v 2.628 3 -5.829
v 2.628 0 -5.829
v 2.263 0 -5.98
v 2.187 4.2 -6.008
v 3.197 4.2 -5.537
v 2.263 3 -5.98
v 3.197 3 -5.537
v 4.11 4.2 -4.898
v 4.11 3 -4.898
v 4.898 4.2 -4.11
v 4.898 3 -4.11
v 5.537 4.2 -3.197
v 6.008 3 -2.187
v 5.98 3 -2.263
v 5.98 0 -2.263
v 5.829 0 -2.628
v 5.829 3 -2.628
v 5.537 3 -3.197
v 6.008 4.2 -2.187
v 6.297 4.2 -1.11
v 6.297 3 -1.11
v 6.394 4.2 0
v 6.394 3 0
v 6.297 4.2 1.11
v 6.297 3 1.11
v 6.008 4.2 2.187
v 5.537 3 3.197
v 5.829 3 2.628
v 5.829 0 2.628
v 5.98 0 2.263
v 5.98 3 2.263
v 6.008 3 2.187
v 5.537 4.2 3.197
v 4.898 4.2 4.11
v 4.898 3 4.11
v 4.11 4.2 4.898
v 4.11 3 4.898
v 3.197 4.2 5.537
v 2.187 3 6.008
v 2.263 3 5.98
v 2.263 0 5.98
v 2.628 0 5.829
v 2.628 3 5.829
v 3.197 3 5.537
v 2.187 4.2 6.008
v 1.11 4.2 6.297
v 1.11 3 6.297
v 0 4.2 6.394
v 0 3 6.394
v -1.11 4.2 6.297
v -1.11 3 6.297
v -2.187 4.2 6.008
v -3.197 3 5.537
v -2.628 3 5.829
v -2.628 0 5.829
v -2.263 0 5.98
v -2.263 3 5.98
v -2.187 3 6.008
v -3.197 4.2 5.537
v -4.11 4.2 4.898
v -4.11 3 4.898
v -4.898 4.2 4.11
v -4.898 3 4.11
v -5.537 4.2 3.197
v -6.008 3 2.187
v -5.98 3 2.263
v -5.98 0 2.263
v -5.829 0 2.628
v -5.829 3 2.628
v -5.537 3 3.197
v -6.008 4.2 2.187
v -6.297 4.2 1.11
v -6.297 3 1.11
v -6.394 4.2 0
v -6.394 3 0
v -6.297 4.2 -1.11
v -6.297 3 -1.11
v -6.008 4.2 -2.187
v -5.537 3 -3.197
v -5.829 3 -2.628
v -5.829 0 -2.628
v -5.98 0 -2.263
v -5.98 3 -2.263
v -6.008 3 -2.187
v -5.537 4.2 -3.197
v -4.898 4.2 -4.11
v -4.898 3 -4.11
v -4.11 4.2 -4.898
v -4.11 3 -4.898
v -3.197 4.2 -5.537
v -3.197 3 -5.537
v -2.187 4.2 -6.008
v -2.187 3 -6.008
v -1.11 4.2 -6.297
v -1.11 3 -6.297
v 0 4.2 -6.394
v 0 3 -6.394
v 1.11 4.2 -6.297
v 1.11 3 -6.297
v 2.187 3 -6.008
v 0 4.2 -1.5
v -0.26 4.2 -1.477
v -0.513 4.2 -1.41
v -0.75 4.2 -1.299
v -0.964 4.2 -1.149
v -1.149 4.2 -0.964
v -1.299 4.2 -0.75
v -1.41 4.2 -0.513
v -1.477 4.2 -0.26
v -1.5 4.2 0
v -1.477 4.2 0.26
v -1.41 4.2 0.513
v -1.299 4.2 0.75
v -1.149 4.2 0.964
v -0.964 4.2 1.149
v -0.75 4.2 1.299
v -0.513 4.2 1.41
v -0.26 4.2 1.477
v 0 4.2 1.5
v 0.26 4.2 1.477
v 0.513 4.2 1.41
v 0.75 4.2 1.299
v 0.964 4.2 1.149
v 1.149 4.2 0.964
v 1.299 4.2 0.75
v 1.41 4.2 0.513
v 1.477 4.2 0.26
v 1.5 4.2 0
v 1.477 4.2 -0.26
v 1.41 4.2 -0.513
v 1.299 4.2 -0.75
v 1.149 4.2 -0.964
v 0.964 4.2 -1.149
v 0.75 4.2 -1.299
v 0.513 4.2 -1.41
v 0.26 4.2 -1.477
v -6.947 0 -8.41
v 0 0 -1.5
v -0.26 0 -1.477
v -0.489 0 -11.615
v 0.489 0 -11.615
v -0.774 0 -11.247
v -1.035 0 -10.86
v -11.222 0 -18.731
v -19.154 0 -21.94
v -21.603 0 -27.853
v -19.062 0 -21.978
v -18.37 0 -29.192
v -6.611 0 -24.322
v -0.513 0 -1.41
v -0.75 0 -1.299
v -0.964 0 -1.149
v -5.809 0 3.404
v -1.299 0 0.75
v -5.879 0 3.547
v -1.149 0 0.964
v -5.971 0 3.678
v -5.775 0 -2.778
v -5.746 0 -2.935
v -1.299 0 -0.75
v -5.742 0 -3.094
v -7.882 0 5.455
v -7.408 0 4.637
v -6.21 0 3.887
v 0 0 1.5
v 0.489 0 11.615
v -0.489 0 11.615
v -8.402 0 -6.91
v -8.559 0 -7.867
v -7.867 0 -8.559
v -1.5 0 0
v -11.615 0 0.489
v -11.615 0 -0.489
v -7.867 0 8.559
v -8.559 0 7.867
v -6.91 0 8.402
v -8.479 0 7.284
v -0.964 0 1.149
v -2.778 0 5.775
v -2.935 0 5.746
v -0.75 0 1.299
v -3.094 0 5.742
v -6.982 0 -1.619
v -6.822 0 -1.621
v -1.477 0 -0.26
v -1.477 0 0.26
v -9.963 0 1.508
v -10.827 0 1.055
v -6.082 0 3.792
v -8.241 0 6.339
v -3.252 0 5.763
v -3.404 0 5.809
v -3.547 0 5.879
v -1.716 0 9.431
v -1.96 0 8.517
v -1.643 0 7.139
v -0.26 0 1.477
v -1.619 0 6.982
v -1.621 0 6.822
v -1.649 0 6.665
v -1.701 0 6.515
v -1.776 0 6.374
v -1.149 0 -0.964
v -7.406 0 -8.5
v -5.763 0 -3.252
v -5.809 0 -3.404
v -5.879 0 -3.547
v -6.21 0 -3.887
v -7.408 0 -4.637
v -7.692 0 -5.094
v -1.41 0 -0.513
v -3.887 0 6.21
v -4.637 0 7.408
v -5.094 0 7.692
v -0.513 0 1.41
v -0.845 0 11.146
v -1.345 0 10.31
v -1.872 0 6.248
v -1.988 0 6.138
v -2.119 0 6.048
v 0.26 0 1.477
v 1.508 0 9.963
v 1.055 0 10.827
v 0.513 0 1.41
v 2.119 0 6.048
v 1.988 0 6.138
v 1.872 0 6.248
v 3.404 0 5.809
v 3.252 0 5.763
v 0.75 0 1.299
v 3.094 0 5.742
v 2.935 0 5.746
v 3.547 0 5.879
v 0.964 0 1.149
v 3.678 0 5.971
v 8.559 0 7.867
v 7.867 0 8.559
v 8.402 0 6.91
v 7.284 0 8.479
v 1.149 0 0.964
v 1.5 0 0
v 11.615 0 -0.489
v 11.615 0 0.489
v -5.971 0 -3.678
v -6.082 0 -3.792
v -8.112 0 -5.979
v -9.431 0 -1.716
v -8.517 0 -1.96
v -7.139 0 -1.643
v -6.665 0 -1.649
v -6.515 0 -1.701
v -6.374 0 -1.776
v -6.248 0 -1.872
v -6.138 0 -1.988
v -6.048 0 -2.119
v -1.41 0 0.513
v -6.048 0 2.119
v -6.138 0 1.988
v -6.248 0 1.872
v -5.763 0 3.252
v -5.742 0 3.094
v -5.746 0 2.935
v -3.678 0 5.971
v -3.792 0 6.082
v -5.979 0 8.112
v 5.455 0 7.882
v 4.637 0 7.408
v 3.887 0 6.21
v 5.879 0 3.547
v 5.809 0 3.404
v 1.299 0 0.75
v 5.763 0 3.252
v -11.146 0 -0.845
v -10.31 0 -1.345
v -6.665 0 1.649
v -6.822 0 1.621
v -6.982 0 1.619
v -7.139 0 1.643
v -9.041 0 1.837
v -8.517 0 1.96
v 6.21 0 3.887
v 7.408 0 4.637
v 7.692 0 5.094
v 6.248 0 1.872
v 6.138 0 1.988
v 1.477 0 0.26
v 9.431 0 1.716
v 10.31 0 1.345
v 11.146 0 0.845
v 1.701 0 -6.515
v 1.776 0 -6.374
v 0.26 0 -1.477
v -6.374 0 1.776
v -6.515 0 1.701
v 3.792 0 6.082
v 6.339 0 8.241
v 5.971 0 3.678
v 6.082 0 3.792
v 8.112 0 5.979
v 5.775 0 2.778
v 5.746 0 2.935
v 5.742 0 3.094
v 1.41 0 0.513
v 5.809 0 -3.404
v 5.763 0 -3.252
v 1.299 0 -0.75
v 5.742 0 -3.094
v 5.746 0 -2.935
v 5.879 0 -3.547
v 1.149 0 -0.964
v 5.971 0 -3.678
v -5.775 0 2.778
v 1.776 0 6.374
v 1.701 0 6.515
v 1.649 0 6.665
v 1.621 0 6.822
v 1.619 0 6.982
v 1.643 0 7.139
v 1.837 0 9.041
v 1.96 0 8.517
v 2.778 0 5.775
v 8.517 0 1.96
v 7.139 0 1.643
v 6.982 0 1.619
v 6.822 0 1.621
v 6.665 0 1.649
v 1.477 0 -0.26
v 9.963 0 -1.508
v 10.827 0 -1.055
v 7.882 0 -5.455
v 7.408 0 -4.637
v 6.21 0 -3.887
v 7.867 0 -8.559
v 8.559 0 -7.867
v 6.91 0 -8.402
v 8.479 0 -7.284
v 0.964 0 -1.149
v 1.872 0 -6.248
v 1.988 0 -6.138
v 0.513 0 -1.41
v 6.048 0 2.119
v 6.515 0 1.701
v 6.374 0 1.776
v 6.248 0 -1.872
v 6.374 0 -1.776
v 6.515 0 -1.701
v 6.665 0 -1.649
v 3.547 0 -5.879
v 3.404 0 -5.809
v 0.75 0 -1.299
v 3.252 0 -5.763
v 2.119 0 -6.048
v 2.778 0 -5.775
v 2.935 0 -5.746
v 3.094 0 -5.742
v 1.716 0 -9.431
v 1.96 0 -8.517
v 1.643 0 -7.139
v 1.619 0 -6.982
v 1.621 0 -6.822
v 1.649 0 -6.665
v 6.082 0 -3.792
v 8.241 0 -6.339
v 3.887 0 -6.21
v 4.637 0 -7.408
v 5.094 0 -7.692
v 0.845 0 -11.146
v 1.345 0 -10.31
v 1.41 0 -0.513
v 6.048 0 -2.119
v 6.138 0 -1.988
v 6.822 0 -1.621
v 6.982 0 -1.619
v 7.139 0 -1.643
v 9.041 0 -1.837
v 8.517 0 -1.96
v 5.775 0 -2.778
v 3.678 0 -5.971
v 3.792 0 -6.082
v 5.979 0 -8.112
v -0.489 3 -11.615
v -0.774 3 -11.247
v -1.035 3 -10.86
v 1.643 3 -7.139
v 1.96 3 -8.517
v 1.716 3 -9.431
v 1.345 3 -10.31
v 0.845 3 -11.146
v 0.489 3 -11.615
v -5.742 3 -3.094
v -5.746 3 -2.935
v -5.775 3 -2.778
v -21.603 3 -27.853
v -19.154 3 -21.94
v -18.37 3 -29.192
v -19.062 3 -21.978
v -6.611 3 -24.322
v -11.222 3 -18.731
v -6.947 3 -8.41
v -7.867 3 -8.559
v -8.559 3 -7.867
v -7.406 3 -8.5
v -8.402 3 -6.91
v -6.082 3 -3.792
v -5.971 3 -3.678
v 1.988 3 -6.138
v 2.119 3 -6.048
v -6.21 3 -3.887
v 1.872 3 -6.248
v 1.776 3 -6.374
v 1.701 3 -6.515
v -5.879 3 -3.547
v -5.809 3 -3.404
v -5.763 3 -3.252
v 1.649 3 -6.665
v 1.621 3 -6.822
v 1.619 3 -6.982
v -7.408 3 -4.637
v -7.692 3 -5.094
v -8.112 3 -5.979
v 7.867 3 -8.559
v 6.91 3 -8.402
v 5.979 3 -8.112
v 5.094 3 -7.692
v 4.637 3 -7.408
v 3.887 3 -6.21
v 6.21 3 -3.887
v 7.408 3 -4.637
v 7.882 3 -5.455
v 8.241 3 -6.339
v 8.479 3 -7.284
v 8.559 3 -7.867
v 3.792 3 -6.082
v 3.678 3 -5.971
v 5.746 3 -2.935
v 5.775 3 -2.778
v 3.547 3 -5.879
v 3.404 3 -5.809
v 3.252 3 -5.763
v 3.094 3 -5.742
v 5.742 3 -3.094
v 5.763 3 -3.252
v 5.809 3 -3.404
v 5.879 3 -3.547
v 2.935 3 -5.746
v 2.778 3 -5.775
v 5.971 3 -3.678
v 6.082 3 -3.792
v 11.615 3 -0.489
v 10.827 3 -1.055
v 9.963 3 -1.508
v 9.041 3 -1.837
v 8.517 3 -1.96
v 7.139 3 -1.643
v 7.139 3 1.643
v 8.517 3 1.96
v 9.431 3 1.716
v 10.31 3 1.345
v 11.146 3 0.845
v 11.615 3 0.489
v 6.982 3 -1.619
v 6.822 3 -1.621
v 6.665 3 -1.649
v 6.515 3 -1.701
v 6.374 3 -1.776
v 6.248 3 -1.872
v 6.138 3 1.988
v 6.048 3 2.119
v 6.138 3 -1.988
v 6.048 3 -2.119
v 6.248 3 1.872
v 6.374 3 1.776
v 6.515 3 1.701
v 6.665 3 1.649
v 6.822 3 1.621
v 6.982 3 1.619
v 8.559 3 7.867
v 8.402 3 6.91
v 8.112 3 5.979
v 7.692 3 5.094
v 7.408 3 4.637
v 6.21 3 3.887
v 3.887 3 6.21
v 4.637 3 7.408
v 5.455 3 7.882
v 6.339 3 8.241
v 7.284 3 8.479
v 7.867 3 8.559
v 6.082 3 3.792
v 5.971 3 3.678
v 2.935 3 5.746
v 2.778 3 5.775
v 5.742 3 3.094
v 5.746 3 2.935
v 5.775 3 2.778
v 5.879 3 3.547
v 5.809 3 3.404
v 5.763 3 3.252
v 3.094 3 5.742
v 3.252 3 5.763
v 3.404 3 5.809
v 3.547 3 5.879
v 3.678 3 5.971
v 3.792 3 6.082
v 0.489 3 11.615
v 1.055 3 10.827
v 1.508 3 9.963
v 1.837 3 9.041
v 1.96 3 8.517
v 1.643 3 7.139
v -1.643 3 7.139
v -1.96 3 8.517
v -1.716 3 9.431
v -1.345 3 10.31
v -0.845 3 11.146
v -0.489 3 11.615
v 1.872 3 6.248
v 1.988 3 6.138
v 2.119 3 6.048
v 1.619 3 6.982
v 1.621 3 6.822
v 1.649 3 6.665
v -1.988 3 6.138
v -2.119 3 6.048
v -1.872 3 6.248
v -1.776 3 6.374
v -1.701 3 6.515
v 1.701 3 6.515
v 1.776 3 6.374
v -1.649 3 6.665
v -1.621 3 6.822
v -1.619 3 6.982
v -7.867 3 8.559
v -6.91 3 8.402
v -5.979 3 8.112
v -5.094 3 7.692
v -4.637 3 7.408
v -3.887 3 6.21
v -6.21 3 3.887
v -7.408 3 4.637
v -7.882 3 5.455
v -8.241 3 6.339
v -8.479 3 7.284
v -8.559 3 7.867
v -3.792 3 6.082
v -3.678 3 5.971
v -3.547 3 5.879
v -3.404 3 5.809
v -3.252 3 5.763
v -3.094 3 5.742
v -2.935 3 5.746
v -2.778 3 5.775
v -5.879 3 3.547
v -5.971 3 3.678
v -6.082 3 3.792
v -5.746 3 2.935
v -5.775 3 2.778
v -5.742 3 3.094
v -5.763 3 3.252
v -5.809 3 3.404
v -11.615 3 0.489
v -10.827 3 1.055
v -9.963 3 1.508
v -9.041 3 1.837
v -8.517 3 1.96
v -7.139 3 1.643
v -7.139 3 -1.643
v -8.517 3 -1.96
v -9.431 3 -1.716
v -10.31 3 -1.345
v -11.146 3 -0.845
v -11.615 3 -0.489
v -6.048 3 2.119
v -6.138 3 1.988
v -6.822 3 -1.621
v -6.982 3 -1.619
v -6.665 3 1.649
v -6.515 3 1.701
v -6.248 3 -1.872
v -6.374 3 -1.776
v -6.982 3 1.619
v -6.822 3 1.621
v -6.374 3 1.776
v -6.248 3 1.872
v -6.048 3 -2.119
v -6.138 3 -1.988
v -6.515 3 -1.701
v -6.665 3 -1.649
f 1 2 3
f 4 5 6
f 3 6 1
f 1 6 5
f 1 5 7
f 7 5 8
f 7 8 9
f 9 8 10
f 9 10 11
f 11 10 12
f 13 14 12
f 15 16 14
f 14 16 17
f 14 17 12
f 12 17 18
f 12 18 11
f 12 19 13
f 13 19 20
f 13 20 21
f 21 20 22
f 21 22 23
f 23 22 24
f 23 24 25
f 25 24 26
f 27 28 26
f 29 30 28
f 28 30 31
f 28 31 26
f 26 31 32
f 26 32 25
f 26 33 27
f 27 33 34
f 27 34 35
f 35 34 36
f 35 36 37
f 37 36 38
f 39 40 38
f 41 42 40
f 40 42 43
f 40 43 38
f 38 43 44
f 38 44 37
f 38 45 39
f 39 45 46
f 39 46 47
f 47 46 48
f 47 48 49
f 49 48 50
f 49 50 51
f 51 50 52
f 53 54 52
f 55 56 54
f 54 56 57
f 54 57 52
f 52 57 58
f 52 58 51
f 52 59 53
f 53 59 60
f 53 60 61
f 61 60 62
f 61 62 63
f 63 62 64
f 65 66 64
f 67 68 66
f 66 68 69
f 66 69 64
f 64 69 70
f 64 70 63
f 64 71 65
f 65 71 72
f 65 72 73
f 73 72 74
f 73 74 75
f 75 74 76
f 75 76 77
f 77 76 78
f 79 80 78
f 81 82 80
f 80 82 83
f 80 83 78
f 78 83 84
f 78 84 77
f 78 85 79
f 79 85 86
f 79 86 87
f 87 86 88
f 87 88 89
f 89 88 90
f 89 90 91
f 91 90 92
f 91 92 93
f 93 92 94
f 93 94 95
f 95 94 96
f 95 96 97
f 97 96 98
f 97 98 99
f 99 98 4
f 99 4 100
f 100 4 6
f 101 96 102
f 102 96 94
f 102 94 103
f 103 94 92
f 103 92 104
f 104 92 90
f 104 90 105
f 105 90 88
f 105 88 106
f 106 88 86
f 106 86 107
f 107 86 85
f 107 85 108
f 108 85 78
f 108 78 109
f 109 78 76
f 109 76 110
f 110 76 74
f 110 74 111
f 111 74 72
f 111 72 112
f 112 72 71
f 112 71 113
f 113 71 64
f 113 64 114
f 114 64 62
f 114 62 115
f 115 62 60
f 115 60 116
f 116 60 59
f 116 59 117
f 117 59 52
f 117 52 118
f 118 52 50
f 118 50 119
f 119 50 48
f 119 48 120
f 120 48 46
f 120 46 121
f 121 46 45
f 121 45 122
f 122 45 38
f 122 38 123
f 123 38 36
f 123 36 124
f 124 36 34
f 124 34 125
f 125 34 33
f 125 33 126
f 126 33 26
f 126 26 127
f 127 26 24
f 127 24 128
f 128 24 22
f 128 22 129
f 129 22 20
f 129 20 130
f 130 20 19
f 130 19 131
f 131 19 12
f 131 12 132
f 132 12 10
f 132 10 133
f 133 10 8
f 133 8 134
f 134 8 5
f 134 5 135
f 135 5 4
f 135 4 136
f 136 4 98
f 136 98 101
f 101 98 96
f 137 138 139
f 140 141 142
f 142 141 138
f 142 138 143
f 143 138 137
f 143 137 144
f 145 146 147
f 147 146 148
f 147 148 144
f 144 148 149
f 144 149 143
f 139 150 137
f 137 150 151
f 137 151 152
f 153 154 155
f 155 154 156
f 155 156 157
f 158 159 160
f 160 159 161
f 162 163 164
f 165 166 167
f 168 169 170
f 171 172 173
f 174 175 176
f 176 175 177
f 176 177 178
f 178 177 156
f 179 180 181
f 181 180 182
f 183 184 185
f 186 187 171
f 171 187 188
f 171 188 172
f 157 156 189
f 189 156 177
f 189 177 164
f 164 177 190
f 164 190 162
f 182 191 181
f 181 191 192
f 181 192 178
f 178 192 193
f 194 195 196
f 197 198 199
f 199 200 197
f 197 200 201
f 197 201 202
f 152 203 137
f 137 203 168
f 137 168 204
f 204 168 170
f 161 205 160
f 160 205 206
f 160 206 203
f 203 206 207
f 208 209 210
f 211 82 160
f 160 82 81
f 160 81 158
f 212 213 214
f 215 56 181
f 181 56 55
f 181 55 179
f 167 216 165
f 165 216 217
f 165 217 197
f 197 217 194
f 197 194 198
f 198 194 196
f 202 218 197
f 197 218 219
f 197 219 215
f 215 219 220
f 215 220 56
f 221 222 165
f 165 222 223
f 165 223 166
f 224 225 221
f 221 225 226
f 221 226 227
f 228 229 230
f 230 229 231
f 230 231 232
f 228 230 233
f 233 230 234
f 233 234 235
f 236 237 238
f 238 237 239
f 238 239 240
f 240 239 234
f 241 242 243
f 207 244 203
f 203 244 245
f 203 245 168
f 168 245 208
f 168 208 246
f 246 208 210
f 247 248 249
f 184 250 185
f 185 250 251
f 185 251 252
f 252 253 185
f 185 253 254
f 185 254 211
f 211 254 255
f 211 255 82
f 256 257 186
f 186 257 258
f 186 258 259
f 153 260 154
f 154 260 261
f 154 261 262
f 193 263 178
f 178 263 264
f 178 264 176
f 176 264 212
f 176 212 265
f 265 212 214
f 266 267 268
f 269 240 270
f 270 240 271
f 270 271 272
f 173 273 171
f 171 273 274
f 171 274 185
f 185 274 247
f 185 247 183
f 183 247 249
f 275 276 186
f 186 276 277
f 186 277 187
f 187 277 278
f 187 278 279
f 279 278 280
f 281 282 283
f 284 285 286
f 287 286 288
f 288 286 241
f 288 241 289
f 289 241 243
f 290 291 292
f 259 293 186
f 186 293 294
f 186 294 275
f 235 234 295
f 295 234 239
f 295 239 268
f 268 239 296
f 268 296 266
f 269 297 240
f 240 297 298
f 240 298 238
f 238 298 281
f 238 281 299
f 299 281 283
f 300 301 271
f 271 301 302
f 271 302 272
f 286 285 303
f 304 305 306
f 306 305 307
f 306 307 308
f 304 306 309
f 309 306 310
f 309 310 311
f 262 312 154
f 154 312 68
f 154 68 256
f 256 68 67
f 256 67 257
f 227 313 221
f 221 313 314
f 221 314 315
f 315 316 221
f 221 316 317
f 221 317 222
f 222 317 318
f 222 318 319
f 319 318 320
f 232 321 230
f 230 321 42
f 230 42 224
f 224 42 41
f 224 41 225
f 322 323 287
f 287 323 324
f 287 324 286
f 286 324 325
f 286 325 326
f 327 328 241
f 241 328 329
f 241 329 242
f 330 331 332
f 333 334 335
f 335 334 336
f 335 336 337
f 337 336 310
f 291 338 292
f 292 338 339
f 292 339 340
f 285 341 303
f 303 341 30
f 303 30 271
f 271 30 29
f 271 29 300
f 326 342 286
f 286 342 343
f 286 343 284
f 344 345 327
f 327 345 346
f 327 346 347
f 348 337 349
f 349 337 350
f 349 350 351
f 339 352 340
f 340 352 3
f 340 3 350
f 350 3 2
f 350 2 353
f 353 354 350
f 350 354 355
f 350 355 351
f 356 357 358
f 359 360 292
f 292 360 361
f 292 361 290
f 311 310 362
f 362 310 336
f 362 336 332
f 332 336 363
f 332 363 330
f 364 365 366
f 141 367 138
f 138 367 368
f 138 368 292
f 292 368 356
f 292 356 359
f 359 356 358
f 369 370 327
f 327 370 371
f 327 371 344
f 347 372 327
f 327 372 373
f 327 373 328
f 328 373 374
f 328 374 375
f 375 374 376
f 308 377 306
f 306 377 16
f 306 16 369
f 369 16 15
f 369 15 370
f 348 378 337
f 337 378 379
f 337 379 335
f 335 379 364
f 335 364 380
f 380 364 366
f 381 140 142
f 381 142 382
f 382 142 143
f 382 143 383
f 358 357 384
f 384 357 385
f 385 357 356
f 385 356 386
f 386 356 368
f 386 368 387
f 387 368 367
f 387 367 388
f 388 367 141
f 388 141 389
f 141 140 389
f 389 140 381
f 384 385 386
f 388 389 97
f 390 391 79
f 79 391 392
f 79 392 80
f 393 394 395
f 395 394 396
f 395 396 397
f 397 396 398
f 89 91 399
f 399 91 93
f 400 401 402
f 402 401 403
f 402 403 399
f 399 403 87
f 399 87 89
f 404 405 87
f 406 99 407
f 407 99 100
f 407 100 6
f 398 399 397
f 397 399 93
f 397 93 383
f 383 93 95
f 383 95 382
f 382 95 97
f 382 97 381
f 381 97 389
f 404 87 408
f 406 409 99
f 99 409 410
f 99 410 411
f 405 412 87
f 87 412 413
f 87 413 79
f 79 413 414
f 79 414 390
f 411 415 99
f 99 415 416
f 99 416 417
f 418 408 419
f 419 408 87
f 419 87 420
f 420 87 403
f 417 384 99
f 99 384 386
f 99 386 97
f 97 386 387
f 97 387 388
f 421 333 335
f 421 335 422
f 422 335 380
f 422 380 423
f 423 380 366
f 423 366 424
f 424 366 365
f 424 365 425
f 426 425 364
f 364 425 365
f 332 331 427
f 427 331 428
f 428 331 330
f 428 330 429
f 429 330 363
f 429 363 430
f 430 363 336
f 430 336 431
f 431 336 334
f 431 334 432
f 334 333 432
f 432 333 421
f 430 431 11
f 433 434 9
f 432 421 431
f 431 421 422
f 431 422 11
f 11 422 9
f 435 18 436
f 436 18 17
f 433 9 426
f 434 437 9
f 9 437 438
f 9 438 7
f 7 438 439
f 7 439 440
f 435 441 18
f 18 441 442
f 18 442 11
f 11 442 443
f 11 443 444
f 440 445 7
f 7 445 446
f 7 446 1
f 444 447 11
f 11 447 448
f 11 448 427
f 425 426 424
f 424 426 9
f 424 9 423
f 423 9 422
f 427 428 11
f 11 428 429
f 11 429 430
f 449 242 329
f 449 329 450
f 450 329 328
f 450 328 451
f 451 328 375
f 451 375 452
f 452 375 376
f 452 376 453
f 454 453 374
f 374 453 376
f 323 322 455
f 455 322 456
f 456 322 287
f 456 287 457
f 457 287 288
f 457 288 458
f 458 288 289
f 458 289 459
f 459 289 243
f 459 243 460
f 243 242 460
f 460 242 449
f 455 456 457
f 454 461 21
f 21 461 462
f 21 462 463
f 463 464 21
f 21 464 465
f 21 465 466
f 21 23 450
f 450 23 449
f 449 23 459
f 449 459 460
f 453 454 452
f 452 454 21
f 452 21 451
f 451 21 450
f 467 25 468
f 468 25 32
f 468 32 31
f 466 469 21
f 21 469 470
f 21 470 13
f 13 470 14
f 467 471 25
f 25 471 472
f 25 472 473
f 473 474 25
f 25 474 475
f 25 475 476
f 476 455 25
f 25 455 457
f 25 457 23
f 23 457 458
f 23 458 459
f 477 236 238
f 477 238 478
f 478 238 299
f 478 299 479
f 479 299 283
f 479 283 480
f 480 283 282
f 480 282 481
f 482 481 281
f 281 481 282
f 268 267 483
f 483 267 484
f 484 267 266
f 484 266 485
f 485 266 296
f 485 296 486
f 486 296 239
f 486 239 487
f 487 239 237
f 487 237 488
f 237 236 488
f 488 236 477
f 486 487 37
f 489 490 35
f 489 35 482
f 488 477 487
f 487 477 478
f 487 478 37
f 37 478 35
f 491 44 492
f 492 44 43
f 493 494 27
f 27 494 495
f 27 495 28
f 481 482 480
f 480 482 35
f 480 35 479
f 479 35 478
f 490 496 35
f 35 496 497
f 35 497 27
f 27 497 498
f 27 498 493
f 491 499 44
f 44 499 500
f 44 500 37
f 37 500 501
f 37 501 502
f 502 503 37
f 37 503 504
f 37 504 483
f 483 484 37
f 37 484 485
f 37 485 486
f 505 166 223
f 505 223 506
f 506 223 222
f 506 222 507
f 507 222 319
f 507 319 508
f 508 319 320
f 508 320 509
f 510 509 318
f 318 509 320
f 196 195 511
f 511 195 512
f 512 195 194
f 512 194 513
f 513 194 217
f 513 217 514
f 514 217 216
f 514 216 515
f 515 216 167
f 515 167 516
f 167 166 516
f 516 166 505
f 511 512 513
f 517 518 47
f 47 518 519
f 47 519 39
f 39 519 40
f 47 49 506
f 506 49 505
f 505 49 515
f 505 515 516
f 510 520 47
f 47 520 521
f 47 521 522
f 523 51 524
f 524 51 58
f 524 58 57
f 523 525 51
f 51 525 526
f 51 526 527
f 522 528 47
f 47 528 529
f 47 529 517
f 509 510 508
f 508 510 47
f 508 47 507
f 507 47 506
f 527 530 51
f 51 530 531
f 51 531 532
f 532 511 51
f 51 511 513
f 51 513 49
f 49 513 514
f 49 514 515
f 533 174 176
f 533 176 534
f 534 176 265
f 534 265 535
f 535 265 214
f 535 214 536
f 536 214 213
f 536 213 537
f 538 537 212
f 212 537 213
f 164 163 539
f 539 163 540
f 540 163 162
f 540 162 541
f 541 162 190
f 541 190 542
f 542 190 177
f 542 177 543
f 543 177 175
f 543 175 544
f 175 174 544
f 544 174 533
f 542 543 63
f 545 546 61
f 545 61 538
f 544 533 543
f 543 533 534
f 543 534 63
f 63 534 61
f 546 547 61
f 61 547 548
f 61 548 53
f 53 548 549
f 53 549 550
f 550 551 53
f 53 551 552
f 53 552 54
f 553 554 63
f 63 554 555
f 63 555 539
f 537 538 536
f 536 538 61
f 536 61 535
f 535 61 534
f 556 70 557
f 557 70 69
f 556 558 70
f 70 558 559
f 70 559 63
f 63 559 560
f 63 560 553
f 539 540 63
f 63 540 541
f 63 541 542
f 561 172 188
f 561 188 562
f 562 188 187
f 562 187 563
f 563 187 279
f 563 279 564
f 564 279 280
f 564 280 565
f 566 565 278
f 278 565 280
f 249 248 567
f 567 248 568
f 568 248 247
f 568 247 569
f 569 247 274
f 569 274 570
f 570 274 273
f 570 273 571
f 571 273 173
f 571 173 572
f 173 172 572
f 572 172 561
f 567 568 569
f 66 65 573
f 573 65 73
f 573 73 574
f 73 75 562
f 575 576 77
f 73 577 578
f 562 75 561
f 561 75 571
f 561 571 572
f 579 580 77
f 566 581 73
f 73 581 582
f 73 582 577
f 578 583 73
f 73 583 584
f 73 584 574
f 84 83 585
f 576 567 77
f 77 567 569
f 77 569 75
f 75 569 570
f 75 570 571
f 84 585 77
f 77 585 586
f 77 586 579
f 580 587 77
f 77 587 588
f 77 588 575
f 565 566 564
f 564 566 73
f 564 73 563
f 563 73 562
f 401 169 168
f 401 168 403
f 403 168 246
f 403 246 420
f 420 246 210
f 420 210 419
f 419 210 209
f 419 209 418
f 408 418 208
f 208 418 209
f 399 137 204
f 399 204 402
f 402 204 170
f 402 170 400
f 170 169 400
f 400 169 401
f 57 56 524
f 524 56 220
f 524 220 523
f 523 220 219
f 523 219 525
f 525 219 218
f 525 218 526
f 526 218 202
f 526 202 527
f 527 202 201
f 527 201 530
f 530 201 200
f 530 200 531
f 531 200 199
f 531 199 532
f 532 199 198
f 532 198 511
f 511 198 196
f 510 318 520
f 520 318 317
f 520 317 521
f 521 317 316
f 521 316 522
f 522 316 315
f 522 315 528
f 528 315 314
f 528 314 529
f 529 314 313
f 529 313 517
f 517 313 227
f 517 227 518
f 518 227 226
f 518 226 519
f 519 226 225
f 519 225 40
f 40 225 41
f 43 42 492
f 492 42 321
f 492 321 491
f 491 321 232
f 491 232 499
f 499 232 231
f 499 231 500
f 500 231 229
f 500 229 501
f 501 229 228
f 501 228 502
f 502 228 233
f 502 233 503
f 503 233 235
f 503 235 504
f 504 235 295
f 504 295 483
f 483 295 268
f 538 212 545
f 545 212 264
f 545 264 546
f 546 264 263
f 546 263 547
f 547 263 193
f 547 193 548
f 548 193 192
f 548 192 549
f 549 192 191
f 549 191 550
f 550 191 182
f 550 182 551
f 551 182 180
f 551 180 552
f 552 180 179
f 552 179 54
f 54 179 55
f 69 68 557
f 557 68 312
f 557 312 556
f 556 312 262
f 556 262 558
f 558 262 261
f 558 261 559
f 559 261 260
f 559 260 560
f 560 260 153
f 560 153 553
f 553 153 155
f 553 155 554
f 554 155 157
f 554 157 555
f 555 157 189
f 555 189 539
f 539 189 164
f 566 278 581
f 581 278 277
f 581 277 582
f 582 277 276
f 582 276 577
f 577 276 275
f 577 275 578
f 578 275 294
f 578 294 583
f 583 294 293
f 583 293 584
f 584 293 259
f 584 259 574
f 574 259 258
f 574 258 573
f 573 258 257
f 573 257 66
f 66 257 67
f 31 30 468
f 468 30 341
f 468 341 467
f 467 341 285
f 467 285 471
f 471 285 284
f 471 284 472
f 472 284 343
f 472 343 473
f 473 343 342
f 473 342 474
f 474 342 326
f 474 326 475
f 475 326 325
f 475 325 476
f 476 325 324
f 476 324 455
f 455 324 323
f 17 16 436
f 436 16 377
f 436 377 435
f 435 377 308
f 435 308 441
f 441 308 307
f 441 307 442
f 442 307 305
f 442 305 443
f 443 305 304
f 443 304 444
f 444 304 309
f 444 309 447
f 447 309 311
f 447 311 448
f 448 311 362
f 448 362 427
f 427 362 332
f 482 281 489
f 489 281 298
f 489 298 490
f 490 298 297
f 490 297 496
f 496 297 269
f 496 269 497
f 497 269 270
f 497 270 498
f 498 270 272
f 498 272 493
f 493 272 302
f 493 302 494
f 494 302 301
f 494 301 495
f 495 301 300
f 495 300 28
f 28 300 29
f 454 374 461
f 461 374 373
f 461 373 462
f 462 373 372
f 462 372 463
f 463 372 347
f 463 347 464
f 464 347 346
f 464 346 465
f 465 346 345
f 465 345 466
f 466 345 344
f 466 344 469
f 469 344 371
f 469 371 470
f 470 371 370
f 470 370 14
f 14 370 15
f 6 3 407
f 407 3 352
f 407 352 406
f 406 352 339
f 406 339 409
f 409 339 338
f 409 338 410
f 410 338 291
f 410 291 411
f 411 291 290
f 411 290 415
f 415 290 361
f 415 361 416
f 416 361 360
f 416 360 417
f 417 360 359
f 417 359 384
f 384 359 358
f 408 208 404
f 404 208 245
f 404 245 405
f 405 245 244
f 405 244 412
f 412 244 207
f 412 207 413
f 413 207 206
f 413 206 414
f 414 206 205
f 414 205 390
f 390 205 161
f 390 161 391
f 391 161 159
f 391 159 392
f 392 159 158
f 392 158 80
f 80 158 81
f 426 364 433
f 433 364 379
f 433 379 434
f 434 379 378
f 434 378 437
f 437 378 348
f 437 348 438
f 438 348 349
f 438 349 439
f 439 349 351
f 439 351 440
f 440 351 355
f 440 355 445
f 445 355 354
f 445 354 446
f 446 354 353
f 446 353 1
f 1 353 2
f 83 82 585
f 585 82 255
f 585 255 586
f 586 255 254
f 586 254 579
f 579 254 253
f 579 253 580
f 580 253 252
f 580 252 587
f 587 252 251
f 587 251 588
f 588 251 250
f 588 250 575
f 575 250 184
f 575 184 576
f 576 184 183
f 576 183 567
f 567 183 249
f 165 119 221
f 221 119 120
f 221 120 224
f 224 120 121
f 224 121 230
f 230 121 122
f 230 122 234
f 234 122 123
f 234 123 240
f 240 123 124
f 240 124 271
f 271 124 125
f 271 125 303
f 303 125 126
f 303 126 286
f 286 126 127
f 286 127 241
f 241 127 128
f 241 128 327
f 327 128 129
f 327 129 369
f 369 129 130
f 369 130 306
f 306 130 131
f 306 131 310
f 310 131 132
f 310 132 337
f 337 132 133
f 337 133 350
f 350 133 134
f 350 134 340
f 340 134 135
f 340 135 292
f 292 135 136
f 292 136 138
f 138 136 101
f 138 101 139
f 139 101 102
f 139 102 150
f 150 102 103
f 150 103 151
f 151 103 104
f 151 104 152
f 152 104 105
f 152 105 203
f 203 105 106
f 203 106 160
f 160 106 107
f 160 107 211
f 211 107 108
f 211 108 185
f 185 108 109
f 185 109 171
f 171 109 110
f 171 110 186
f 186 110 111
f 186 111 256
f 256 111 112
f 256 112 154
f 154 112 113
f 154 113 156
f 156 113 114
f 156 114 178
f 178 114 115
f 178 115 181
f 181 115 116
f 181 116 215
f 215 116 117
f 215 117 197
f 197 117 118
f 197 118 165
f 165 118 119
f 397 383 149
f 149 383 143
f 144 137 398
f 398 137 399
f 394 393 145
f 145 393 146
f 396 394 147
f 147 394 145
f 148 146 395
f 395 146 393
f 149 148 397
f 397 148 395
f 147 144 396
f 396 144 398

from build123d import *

# Parameters (mm, degrees)
SKETCH1_R           = 6.39375
BOSS_EXTRUDE1_DEPTH = 4.2
BOSS_EXTRUDE2_DEPTH = 3
FILLET1_R           = 1
SKETCH3_R           = 1.5
CUT_EXTRUDE1_DEPTH  = 17.968242557
BOSS_EXTRUDE3_DEPTH = 3
CHAMFER1_SIZE       = 9
CHAMFER2_SIZE       = 6


with BuildPart() as part:
    # Sketch1 → Boss-Extrude1 (new body)
    with BuildSketch(Plane(origin=(0, 0, 0), x_dir=(1, 0, 0), z_dir=(0, 1, 0))):
        with Locations(Location((0, 0, 0), (0, 0, 270))):
            Circle(SKETCH1_R)
    extrude(amount=BOSS_EXTRUDE1_DEPTH)

    # Sketch2 → Boss-Extrude2 (add)
    with BuildSketch(Plane(origin=(0, 0, 0), x_dir=(1, 0, 0), z_dir=(0, 1, 0))):
        with BuildLine():
            Line((-1.433648629, 6.23094621), (-1.959549626, 8.516625387))
            add(Edge.make_bspline(
                [(-1.959549626, 8.516625387), (-1.745269759, 9.644412797), (-1.223586565, 10.731441367), (-0.488991141, 11.614711045)],
                knots=[0, 0, 0, 0, 1, 1, 1, 1], degree=3))
            ThreePointArc((-0.488991141, 11.614711045), (0, 11.625), (0.488991141, 11.614711045))
            add(Edge.make_bspline(
                [(1.959549626, 8.516625387), (1.745269759, 9.644412797), (1.223586565, 10.731441367), (0.488991141, 11.614711045)],
                knots=[0, 0, 0, 0, 1, 1, 1, 1], degree=3))
            Line((1.959549626, 8.516625387), (1.433648629, 6.23094621))
            ThreePointArc((1.433648629, 6.23094621), (0, 6.39375), (-1.433648629, 6.23094621))
        make_face()
        with BuildLine():
            Line((3.392201651, 5.419686986), (4.636552736, 7.407774392))
            add(Edge.make_bspline(
                [(4.636552736, 7.407774392), (5.585537608, 8.053721771), (6.723068605, 8.45348132), (7.86707199, 8.558609894)],
                knots=[0, 0, 0, 0, 1, 1, 1, 1], degree=3))
            ThreePointArc((7.86707199, 8.558609894), (8.220116331, 8.220116331), (8.558609894, 7.86707199))
            add(Edge.make_bspline(
                [(7.407774392, 4.636552736), (8.053721771, 5.585537608), (8.45348132, 6.723068605), (8.558609894, 7.86707199)],
                knots=[0, 0, 0, 0, 1, 1, 1, 1], degree=3))
            Line((7.407774392, 4.636552736), (5.419686986, 3.392201651))
            ThreePointArc((5.419686986, 3.392201651), (4.521063982, 4.521063982), (3.392201651, 5.419686986))
        make_face()
        with BuildLine():
            Line((6.23094621, 1.433648629), (8.516625387, 1.959549626))
            add(Edge.make_bspline(
                [(8.516625387, 1.959549626), (9.644412797, 1.745269759), (10.731441367, 1.223586565), (11.614711045, 0.488991141)],
                knots=[0, 0, 0, 0, 1, 1, 1, 1], degree=3))
            ThreePointArc((11.614711045, 0.488991141), (11.625, 0), (11.614711045, -0.488991141))
            add(Edge.make_bspline(
                [(8.516625387, -1.959549626), (9.644412797, -1.745269759), (10.731441367, -1.223586565), (11.614711045, -0.488991141)],
                knots=[0, 0, 0, 0, 1, 1, 1, 1], degree=3))
            Line((8.516625387, -1.959549626), (6.23094621, -1.433648629))
            ThreePointArc((6.23094621, -1.433648629), (6.39375, 0), (6.23094621, 1.433648629))
        make_face()
        with BuildLine():
            Line((5.419686986, -3.392201651), (7.407774392, -4.636552736))
            add(Edge.make_bspline(
                [(7.407774392, -4.636552736), (8.053721771, -5.585537608), (8.45348132, -6.723068605), (8.558609894, -7.86707199)],
                knots=[0, 0, 0, 0, 1, 1, 1, 1], degree=3))
            ThreePointArc((8.558609894, -7.86707199), (8.220116331, -8.220116331), (7.86707199, -8.558609894))
            add(Edge.make_bspline(
                [(4.636552736, -7.407774392), (5.585537608, -8.053721771), (6.723068605, -8.45348132), (7.86707199, -8.558609894)],
                knots=[0, 0, 0, 0, 1, 1, 1, 1], degree=3))
            Line((4.636552736, -7.407774392), (3.392201651, -5.419686986))
            ThreePointArc((3.392201651, -5.419686986), (4.521063982, -4.521063982), (5.419686986, -3.392201651))
        make_face()
        with BuildLine():
            Line((1.433648629, -6.23094621), (1.959549626, -8.516625387))
            add(Edge.make_bspline(
                [(1.959549626, -8.516625387), (1.745269759, -9.644412797), (1.223586565, -10.731441367), (0.488991141, -11.614711045)],
                knots=[0, 0, 0, 0, 1, 1, 1, 1], degree=3))
            ThreePointArc((0.488991141, -11.614711045), (0, -11.625), (-0.488991141, -11.614711045))
            add(Edge.make_bspline(
                [(-1.959549626, -8.516625387), (-1.745269759, -9.644412797), (-1.223586565, -10.731441367), (-0.488991141, -11.614711045)],
                knots=[0, 0, 0, 0, 1, 1, 1, 1], degree=3))
            Line((-1.959549626, -8.516625387), (-1.433648629, -6.23094621))
            ThreePointArc((-1.433648629, -6.23094621), (0, -6.39375), (1.433648629, -6.23094621))
        make_face()
        with BuildLine():
            Line((-3.392201651, -5.419686986), (-4.636552736, -7.407774392))
            add(Edge.make_bspline(
                [(-4.636552736, -7.407774392), (-5.585537608, -8.053721771), (-6.723068605, -8.45348132), (-7.86707199, -8.558609894)],
                knots=[0, 0, 0, 0, 1, 1, 1, 1], degree=3))
            ThreePointArc((-7.86707199, -8.558609894), (-8.220116331, -8.220116331), (-8.558609894, -7.86707199))
            add(Edge.make_bspline(
                [(-7.407774392, -4.636552736), (-8.053721771, -5.585537608), (-8.45348132, -6.723068605), (-8.558609894, -7.86707199)],
                knots=[0, 0, 0, 0, 1, 1, 1, 1], degree=3))
            Line((-7.407774392, -4.636552736), (-5.419686986, -3.392201651))
            ThreePointArc((-5.419686986, -3.392201651), (-4.521063982, -4.521063982), (-3.392201651, -5.419686986))
        make_face()
        with BuildLine():
            Line((-6.23094621, -1.433648629), (-8.516625387, -1.959549626))
            add(Edge.make_bspline(
                [(-8.516625387, -1.959549626), (-9.644412797, -1.745269759), (-10.731441367, -1.223586565), (-11.614711045, -0.488991141)],
                knots=[0, 0, 0, 0, 1, 1, 1, 1], degree=3))
            ThreePointArc((-11.614711045, -0.488991141), (-11.625, 0), (-11.614711045, 0.488991141))
            add(Edge.make_bspline(
                [(-8.516625387, 1.959549626), (-9.644412797, 1.745269759), (-10.731441367, 1.223586565), (-11.614711045, 0.488991141)],
                knots=[0, 0, 0, 0, 1, 1, 1, 1], degree=3))
            Line((-8.516625387, 1.959549626), (-6.23094621, 1.433648629))
            ThreePointArc((-6.23094621, 1.433648629), (-6.39375, 0), (-6.23094621, -1.433648629))
        make_face()
        with BuildLine():
            Line((-5.419686986, 3.392201651), (-7.407774392, 4.636552736))
            add(Edge.make_bspline(
                [(-7.407774392, 4.636552736), (-8.053721771, 5.585537608), (-8.45348132, 6.723068605), (-8.558609894, 7.86707199)],
                knots=[0, 0, 0, 0, 1, 1, 1, 1], degree=3))
            ThreePointArc((-8.558609894, 7.86707199), (-8.220116331, 8.220116331), (-7.86707199, 8.558609894))
            add(Edge.make_bspline(
                [(-4.636552736, 7.407774392), (-5.585537608, 8.053721771), (-6.723068605, 8.45348132), (-7.86707199, 8.558609894)],
                knots=[0, 0, 0, 0, 1, 1, 1, 1], degree=3))
            Line((-4.636552736, 7.407774392), (-3.392201651, 5.419686986))
            ThreePointArc((-3.392201651, 5.419686986), (-4.521063982, 4.521063982), (-5.419686986, 3.392201651))
        make_face()
    extrude(amount=BOSS_EXTRUDE2_DEPTH)

    # Fillet1
    fillet1_edges = [part.edges().sort_by_distance(p)[0] for p in [
        (-5.419686986, 1.5, -3.392201651),
        (-3.392201651, 1.5, -5.419686986),
        (3.392201651, 1.5, -5.419686986),
        (5.419686986, 1.5, -3.392201651),
        (6.23094621, 1.5, -1.433648629),
        (6.23094621, 1.5, 1.433648629),
        (5.419686986, 1.5, 3.392201651),
        (3.392201651, 1.5, 5.419686986),
        (1.433648629, 1.5, 6.23094621),
        (-1.433648629, 1.5, 6.23094621),
        (-3.392201651, 1.5, 5.419686986),
        (-5.419686986, 1.5, 3.392201651),
        (-1.433648629, 1.5, -6.23094621),
        (1.433648629, 1.5, -6.23094621),
        (-6.23094621, 1.5, 1.433648629),
        (-6.23094621, 1.5, -1.433648629),
    ]]
    fillet(fillet1_edges, radius=FILLET1_R)

    # Sketch3 → Cut-Extrude1 (cut, through all)
    with BuildSketch(Plane(origin=(0, 4.2, 0), x_dir=(1, 0, 0), z_dir=(0, 1, 0))):
        with Locations(Location((0, 0, 0), (0, 0, 270))):
            Circle(SKETCH3_R)
    extrude(amount=-CUT_EXTRUDE1_DEPTH, mode=Mode.SUBTRACT)

    # Sketch4 → Boss-Extrude3 (add)
    with BuildSketch(Plane.XZ):
        Polygon((1.425680775, -4.920105114), (-4.487148233, -2.470931146), (-13.518477237, -24.274488114), (-19.154142386, -21.940119176), (-21.603316353, -27.852948184), (-10.054822196, -32.636491089), align=None)
    extrude(amount=-BOSS_EXTRUDE3_DEPTH)

    # Chamfer1
    chamfer1_edges = [part.edges().sort_by_distance(p)[0] for p in [
        (-10.054822196, 1.5, -32.636491089),
    ]]
    chamfer(chamfer1_edges, length=CHAMFER1_SIZE)

    # Chamfer2
    chamfer2_edges = [part.edges().sort_by_distance(p)[0] for p in [
        (-13.518477237, 1.5, -24.274488114),
    ]]
    chamfer(chamfer2_edges, length=CHAMFER2_SIZE)


solid = part.part
